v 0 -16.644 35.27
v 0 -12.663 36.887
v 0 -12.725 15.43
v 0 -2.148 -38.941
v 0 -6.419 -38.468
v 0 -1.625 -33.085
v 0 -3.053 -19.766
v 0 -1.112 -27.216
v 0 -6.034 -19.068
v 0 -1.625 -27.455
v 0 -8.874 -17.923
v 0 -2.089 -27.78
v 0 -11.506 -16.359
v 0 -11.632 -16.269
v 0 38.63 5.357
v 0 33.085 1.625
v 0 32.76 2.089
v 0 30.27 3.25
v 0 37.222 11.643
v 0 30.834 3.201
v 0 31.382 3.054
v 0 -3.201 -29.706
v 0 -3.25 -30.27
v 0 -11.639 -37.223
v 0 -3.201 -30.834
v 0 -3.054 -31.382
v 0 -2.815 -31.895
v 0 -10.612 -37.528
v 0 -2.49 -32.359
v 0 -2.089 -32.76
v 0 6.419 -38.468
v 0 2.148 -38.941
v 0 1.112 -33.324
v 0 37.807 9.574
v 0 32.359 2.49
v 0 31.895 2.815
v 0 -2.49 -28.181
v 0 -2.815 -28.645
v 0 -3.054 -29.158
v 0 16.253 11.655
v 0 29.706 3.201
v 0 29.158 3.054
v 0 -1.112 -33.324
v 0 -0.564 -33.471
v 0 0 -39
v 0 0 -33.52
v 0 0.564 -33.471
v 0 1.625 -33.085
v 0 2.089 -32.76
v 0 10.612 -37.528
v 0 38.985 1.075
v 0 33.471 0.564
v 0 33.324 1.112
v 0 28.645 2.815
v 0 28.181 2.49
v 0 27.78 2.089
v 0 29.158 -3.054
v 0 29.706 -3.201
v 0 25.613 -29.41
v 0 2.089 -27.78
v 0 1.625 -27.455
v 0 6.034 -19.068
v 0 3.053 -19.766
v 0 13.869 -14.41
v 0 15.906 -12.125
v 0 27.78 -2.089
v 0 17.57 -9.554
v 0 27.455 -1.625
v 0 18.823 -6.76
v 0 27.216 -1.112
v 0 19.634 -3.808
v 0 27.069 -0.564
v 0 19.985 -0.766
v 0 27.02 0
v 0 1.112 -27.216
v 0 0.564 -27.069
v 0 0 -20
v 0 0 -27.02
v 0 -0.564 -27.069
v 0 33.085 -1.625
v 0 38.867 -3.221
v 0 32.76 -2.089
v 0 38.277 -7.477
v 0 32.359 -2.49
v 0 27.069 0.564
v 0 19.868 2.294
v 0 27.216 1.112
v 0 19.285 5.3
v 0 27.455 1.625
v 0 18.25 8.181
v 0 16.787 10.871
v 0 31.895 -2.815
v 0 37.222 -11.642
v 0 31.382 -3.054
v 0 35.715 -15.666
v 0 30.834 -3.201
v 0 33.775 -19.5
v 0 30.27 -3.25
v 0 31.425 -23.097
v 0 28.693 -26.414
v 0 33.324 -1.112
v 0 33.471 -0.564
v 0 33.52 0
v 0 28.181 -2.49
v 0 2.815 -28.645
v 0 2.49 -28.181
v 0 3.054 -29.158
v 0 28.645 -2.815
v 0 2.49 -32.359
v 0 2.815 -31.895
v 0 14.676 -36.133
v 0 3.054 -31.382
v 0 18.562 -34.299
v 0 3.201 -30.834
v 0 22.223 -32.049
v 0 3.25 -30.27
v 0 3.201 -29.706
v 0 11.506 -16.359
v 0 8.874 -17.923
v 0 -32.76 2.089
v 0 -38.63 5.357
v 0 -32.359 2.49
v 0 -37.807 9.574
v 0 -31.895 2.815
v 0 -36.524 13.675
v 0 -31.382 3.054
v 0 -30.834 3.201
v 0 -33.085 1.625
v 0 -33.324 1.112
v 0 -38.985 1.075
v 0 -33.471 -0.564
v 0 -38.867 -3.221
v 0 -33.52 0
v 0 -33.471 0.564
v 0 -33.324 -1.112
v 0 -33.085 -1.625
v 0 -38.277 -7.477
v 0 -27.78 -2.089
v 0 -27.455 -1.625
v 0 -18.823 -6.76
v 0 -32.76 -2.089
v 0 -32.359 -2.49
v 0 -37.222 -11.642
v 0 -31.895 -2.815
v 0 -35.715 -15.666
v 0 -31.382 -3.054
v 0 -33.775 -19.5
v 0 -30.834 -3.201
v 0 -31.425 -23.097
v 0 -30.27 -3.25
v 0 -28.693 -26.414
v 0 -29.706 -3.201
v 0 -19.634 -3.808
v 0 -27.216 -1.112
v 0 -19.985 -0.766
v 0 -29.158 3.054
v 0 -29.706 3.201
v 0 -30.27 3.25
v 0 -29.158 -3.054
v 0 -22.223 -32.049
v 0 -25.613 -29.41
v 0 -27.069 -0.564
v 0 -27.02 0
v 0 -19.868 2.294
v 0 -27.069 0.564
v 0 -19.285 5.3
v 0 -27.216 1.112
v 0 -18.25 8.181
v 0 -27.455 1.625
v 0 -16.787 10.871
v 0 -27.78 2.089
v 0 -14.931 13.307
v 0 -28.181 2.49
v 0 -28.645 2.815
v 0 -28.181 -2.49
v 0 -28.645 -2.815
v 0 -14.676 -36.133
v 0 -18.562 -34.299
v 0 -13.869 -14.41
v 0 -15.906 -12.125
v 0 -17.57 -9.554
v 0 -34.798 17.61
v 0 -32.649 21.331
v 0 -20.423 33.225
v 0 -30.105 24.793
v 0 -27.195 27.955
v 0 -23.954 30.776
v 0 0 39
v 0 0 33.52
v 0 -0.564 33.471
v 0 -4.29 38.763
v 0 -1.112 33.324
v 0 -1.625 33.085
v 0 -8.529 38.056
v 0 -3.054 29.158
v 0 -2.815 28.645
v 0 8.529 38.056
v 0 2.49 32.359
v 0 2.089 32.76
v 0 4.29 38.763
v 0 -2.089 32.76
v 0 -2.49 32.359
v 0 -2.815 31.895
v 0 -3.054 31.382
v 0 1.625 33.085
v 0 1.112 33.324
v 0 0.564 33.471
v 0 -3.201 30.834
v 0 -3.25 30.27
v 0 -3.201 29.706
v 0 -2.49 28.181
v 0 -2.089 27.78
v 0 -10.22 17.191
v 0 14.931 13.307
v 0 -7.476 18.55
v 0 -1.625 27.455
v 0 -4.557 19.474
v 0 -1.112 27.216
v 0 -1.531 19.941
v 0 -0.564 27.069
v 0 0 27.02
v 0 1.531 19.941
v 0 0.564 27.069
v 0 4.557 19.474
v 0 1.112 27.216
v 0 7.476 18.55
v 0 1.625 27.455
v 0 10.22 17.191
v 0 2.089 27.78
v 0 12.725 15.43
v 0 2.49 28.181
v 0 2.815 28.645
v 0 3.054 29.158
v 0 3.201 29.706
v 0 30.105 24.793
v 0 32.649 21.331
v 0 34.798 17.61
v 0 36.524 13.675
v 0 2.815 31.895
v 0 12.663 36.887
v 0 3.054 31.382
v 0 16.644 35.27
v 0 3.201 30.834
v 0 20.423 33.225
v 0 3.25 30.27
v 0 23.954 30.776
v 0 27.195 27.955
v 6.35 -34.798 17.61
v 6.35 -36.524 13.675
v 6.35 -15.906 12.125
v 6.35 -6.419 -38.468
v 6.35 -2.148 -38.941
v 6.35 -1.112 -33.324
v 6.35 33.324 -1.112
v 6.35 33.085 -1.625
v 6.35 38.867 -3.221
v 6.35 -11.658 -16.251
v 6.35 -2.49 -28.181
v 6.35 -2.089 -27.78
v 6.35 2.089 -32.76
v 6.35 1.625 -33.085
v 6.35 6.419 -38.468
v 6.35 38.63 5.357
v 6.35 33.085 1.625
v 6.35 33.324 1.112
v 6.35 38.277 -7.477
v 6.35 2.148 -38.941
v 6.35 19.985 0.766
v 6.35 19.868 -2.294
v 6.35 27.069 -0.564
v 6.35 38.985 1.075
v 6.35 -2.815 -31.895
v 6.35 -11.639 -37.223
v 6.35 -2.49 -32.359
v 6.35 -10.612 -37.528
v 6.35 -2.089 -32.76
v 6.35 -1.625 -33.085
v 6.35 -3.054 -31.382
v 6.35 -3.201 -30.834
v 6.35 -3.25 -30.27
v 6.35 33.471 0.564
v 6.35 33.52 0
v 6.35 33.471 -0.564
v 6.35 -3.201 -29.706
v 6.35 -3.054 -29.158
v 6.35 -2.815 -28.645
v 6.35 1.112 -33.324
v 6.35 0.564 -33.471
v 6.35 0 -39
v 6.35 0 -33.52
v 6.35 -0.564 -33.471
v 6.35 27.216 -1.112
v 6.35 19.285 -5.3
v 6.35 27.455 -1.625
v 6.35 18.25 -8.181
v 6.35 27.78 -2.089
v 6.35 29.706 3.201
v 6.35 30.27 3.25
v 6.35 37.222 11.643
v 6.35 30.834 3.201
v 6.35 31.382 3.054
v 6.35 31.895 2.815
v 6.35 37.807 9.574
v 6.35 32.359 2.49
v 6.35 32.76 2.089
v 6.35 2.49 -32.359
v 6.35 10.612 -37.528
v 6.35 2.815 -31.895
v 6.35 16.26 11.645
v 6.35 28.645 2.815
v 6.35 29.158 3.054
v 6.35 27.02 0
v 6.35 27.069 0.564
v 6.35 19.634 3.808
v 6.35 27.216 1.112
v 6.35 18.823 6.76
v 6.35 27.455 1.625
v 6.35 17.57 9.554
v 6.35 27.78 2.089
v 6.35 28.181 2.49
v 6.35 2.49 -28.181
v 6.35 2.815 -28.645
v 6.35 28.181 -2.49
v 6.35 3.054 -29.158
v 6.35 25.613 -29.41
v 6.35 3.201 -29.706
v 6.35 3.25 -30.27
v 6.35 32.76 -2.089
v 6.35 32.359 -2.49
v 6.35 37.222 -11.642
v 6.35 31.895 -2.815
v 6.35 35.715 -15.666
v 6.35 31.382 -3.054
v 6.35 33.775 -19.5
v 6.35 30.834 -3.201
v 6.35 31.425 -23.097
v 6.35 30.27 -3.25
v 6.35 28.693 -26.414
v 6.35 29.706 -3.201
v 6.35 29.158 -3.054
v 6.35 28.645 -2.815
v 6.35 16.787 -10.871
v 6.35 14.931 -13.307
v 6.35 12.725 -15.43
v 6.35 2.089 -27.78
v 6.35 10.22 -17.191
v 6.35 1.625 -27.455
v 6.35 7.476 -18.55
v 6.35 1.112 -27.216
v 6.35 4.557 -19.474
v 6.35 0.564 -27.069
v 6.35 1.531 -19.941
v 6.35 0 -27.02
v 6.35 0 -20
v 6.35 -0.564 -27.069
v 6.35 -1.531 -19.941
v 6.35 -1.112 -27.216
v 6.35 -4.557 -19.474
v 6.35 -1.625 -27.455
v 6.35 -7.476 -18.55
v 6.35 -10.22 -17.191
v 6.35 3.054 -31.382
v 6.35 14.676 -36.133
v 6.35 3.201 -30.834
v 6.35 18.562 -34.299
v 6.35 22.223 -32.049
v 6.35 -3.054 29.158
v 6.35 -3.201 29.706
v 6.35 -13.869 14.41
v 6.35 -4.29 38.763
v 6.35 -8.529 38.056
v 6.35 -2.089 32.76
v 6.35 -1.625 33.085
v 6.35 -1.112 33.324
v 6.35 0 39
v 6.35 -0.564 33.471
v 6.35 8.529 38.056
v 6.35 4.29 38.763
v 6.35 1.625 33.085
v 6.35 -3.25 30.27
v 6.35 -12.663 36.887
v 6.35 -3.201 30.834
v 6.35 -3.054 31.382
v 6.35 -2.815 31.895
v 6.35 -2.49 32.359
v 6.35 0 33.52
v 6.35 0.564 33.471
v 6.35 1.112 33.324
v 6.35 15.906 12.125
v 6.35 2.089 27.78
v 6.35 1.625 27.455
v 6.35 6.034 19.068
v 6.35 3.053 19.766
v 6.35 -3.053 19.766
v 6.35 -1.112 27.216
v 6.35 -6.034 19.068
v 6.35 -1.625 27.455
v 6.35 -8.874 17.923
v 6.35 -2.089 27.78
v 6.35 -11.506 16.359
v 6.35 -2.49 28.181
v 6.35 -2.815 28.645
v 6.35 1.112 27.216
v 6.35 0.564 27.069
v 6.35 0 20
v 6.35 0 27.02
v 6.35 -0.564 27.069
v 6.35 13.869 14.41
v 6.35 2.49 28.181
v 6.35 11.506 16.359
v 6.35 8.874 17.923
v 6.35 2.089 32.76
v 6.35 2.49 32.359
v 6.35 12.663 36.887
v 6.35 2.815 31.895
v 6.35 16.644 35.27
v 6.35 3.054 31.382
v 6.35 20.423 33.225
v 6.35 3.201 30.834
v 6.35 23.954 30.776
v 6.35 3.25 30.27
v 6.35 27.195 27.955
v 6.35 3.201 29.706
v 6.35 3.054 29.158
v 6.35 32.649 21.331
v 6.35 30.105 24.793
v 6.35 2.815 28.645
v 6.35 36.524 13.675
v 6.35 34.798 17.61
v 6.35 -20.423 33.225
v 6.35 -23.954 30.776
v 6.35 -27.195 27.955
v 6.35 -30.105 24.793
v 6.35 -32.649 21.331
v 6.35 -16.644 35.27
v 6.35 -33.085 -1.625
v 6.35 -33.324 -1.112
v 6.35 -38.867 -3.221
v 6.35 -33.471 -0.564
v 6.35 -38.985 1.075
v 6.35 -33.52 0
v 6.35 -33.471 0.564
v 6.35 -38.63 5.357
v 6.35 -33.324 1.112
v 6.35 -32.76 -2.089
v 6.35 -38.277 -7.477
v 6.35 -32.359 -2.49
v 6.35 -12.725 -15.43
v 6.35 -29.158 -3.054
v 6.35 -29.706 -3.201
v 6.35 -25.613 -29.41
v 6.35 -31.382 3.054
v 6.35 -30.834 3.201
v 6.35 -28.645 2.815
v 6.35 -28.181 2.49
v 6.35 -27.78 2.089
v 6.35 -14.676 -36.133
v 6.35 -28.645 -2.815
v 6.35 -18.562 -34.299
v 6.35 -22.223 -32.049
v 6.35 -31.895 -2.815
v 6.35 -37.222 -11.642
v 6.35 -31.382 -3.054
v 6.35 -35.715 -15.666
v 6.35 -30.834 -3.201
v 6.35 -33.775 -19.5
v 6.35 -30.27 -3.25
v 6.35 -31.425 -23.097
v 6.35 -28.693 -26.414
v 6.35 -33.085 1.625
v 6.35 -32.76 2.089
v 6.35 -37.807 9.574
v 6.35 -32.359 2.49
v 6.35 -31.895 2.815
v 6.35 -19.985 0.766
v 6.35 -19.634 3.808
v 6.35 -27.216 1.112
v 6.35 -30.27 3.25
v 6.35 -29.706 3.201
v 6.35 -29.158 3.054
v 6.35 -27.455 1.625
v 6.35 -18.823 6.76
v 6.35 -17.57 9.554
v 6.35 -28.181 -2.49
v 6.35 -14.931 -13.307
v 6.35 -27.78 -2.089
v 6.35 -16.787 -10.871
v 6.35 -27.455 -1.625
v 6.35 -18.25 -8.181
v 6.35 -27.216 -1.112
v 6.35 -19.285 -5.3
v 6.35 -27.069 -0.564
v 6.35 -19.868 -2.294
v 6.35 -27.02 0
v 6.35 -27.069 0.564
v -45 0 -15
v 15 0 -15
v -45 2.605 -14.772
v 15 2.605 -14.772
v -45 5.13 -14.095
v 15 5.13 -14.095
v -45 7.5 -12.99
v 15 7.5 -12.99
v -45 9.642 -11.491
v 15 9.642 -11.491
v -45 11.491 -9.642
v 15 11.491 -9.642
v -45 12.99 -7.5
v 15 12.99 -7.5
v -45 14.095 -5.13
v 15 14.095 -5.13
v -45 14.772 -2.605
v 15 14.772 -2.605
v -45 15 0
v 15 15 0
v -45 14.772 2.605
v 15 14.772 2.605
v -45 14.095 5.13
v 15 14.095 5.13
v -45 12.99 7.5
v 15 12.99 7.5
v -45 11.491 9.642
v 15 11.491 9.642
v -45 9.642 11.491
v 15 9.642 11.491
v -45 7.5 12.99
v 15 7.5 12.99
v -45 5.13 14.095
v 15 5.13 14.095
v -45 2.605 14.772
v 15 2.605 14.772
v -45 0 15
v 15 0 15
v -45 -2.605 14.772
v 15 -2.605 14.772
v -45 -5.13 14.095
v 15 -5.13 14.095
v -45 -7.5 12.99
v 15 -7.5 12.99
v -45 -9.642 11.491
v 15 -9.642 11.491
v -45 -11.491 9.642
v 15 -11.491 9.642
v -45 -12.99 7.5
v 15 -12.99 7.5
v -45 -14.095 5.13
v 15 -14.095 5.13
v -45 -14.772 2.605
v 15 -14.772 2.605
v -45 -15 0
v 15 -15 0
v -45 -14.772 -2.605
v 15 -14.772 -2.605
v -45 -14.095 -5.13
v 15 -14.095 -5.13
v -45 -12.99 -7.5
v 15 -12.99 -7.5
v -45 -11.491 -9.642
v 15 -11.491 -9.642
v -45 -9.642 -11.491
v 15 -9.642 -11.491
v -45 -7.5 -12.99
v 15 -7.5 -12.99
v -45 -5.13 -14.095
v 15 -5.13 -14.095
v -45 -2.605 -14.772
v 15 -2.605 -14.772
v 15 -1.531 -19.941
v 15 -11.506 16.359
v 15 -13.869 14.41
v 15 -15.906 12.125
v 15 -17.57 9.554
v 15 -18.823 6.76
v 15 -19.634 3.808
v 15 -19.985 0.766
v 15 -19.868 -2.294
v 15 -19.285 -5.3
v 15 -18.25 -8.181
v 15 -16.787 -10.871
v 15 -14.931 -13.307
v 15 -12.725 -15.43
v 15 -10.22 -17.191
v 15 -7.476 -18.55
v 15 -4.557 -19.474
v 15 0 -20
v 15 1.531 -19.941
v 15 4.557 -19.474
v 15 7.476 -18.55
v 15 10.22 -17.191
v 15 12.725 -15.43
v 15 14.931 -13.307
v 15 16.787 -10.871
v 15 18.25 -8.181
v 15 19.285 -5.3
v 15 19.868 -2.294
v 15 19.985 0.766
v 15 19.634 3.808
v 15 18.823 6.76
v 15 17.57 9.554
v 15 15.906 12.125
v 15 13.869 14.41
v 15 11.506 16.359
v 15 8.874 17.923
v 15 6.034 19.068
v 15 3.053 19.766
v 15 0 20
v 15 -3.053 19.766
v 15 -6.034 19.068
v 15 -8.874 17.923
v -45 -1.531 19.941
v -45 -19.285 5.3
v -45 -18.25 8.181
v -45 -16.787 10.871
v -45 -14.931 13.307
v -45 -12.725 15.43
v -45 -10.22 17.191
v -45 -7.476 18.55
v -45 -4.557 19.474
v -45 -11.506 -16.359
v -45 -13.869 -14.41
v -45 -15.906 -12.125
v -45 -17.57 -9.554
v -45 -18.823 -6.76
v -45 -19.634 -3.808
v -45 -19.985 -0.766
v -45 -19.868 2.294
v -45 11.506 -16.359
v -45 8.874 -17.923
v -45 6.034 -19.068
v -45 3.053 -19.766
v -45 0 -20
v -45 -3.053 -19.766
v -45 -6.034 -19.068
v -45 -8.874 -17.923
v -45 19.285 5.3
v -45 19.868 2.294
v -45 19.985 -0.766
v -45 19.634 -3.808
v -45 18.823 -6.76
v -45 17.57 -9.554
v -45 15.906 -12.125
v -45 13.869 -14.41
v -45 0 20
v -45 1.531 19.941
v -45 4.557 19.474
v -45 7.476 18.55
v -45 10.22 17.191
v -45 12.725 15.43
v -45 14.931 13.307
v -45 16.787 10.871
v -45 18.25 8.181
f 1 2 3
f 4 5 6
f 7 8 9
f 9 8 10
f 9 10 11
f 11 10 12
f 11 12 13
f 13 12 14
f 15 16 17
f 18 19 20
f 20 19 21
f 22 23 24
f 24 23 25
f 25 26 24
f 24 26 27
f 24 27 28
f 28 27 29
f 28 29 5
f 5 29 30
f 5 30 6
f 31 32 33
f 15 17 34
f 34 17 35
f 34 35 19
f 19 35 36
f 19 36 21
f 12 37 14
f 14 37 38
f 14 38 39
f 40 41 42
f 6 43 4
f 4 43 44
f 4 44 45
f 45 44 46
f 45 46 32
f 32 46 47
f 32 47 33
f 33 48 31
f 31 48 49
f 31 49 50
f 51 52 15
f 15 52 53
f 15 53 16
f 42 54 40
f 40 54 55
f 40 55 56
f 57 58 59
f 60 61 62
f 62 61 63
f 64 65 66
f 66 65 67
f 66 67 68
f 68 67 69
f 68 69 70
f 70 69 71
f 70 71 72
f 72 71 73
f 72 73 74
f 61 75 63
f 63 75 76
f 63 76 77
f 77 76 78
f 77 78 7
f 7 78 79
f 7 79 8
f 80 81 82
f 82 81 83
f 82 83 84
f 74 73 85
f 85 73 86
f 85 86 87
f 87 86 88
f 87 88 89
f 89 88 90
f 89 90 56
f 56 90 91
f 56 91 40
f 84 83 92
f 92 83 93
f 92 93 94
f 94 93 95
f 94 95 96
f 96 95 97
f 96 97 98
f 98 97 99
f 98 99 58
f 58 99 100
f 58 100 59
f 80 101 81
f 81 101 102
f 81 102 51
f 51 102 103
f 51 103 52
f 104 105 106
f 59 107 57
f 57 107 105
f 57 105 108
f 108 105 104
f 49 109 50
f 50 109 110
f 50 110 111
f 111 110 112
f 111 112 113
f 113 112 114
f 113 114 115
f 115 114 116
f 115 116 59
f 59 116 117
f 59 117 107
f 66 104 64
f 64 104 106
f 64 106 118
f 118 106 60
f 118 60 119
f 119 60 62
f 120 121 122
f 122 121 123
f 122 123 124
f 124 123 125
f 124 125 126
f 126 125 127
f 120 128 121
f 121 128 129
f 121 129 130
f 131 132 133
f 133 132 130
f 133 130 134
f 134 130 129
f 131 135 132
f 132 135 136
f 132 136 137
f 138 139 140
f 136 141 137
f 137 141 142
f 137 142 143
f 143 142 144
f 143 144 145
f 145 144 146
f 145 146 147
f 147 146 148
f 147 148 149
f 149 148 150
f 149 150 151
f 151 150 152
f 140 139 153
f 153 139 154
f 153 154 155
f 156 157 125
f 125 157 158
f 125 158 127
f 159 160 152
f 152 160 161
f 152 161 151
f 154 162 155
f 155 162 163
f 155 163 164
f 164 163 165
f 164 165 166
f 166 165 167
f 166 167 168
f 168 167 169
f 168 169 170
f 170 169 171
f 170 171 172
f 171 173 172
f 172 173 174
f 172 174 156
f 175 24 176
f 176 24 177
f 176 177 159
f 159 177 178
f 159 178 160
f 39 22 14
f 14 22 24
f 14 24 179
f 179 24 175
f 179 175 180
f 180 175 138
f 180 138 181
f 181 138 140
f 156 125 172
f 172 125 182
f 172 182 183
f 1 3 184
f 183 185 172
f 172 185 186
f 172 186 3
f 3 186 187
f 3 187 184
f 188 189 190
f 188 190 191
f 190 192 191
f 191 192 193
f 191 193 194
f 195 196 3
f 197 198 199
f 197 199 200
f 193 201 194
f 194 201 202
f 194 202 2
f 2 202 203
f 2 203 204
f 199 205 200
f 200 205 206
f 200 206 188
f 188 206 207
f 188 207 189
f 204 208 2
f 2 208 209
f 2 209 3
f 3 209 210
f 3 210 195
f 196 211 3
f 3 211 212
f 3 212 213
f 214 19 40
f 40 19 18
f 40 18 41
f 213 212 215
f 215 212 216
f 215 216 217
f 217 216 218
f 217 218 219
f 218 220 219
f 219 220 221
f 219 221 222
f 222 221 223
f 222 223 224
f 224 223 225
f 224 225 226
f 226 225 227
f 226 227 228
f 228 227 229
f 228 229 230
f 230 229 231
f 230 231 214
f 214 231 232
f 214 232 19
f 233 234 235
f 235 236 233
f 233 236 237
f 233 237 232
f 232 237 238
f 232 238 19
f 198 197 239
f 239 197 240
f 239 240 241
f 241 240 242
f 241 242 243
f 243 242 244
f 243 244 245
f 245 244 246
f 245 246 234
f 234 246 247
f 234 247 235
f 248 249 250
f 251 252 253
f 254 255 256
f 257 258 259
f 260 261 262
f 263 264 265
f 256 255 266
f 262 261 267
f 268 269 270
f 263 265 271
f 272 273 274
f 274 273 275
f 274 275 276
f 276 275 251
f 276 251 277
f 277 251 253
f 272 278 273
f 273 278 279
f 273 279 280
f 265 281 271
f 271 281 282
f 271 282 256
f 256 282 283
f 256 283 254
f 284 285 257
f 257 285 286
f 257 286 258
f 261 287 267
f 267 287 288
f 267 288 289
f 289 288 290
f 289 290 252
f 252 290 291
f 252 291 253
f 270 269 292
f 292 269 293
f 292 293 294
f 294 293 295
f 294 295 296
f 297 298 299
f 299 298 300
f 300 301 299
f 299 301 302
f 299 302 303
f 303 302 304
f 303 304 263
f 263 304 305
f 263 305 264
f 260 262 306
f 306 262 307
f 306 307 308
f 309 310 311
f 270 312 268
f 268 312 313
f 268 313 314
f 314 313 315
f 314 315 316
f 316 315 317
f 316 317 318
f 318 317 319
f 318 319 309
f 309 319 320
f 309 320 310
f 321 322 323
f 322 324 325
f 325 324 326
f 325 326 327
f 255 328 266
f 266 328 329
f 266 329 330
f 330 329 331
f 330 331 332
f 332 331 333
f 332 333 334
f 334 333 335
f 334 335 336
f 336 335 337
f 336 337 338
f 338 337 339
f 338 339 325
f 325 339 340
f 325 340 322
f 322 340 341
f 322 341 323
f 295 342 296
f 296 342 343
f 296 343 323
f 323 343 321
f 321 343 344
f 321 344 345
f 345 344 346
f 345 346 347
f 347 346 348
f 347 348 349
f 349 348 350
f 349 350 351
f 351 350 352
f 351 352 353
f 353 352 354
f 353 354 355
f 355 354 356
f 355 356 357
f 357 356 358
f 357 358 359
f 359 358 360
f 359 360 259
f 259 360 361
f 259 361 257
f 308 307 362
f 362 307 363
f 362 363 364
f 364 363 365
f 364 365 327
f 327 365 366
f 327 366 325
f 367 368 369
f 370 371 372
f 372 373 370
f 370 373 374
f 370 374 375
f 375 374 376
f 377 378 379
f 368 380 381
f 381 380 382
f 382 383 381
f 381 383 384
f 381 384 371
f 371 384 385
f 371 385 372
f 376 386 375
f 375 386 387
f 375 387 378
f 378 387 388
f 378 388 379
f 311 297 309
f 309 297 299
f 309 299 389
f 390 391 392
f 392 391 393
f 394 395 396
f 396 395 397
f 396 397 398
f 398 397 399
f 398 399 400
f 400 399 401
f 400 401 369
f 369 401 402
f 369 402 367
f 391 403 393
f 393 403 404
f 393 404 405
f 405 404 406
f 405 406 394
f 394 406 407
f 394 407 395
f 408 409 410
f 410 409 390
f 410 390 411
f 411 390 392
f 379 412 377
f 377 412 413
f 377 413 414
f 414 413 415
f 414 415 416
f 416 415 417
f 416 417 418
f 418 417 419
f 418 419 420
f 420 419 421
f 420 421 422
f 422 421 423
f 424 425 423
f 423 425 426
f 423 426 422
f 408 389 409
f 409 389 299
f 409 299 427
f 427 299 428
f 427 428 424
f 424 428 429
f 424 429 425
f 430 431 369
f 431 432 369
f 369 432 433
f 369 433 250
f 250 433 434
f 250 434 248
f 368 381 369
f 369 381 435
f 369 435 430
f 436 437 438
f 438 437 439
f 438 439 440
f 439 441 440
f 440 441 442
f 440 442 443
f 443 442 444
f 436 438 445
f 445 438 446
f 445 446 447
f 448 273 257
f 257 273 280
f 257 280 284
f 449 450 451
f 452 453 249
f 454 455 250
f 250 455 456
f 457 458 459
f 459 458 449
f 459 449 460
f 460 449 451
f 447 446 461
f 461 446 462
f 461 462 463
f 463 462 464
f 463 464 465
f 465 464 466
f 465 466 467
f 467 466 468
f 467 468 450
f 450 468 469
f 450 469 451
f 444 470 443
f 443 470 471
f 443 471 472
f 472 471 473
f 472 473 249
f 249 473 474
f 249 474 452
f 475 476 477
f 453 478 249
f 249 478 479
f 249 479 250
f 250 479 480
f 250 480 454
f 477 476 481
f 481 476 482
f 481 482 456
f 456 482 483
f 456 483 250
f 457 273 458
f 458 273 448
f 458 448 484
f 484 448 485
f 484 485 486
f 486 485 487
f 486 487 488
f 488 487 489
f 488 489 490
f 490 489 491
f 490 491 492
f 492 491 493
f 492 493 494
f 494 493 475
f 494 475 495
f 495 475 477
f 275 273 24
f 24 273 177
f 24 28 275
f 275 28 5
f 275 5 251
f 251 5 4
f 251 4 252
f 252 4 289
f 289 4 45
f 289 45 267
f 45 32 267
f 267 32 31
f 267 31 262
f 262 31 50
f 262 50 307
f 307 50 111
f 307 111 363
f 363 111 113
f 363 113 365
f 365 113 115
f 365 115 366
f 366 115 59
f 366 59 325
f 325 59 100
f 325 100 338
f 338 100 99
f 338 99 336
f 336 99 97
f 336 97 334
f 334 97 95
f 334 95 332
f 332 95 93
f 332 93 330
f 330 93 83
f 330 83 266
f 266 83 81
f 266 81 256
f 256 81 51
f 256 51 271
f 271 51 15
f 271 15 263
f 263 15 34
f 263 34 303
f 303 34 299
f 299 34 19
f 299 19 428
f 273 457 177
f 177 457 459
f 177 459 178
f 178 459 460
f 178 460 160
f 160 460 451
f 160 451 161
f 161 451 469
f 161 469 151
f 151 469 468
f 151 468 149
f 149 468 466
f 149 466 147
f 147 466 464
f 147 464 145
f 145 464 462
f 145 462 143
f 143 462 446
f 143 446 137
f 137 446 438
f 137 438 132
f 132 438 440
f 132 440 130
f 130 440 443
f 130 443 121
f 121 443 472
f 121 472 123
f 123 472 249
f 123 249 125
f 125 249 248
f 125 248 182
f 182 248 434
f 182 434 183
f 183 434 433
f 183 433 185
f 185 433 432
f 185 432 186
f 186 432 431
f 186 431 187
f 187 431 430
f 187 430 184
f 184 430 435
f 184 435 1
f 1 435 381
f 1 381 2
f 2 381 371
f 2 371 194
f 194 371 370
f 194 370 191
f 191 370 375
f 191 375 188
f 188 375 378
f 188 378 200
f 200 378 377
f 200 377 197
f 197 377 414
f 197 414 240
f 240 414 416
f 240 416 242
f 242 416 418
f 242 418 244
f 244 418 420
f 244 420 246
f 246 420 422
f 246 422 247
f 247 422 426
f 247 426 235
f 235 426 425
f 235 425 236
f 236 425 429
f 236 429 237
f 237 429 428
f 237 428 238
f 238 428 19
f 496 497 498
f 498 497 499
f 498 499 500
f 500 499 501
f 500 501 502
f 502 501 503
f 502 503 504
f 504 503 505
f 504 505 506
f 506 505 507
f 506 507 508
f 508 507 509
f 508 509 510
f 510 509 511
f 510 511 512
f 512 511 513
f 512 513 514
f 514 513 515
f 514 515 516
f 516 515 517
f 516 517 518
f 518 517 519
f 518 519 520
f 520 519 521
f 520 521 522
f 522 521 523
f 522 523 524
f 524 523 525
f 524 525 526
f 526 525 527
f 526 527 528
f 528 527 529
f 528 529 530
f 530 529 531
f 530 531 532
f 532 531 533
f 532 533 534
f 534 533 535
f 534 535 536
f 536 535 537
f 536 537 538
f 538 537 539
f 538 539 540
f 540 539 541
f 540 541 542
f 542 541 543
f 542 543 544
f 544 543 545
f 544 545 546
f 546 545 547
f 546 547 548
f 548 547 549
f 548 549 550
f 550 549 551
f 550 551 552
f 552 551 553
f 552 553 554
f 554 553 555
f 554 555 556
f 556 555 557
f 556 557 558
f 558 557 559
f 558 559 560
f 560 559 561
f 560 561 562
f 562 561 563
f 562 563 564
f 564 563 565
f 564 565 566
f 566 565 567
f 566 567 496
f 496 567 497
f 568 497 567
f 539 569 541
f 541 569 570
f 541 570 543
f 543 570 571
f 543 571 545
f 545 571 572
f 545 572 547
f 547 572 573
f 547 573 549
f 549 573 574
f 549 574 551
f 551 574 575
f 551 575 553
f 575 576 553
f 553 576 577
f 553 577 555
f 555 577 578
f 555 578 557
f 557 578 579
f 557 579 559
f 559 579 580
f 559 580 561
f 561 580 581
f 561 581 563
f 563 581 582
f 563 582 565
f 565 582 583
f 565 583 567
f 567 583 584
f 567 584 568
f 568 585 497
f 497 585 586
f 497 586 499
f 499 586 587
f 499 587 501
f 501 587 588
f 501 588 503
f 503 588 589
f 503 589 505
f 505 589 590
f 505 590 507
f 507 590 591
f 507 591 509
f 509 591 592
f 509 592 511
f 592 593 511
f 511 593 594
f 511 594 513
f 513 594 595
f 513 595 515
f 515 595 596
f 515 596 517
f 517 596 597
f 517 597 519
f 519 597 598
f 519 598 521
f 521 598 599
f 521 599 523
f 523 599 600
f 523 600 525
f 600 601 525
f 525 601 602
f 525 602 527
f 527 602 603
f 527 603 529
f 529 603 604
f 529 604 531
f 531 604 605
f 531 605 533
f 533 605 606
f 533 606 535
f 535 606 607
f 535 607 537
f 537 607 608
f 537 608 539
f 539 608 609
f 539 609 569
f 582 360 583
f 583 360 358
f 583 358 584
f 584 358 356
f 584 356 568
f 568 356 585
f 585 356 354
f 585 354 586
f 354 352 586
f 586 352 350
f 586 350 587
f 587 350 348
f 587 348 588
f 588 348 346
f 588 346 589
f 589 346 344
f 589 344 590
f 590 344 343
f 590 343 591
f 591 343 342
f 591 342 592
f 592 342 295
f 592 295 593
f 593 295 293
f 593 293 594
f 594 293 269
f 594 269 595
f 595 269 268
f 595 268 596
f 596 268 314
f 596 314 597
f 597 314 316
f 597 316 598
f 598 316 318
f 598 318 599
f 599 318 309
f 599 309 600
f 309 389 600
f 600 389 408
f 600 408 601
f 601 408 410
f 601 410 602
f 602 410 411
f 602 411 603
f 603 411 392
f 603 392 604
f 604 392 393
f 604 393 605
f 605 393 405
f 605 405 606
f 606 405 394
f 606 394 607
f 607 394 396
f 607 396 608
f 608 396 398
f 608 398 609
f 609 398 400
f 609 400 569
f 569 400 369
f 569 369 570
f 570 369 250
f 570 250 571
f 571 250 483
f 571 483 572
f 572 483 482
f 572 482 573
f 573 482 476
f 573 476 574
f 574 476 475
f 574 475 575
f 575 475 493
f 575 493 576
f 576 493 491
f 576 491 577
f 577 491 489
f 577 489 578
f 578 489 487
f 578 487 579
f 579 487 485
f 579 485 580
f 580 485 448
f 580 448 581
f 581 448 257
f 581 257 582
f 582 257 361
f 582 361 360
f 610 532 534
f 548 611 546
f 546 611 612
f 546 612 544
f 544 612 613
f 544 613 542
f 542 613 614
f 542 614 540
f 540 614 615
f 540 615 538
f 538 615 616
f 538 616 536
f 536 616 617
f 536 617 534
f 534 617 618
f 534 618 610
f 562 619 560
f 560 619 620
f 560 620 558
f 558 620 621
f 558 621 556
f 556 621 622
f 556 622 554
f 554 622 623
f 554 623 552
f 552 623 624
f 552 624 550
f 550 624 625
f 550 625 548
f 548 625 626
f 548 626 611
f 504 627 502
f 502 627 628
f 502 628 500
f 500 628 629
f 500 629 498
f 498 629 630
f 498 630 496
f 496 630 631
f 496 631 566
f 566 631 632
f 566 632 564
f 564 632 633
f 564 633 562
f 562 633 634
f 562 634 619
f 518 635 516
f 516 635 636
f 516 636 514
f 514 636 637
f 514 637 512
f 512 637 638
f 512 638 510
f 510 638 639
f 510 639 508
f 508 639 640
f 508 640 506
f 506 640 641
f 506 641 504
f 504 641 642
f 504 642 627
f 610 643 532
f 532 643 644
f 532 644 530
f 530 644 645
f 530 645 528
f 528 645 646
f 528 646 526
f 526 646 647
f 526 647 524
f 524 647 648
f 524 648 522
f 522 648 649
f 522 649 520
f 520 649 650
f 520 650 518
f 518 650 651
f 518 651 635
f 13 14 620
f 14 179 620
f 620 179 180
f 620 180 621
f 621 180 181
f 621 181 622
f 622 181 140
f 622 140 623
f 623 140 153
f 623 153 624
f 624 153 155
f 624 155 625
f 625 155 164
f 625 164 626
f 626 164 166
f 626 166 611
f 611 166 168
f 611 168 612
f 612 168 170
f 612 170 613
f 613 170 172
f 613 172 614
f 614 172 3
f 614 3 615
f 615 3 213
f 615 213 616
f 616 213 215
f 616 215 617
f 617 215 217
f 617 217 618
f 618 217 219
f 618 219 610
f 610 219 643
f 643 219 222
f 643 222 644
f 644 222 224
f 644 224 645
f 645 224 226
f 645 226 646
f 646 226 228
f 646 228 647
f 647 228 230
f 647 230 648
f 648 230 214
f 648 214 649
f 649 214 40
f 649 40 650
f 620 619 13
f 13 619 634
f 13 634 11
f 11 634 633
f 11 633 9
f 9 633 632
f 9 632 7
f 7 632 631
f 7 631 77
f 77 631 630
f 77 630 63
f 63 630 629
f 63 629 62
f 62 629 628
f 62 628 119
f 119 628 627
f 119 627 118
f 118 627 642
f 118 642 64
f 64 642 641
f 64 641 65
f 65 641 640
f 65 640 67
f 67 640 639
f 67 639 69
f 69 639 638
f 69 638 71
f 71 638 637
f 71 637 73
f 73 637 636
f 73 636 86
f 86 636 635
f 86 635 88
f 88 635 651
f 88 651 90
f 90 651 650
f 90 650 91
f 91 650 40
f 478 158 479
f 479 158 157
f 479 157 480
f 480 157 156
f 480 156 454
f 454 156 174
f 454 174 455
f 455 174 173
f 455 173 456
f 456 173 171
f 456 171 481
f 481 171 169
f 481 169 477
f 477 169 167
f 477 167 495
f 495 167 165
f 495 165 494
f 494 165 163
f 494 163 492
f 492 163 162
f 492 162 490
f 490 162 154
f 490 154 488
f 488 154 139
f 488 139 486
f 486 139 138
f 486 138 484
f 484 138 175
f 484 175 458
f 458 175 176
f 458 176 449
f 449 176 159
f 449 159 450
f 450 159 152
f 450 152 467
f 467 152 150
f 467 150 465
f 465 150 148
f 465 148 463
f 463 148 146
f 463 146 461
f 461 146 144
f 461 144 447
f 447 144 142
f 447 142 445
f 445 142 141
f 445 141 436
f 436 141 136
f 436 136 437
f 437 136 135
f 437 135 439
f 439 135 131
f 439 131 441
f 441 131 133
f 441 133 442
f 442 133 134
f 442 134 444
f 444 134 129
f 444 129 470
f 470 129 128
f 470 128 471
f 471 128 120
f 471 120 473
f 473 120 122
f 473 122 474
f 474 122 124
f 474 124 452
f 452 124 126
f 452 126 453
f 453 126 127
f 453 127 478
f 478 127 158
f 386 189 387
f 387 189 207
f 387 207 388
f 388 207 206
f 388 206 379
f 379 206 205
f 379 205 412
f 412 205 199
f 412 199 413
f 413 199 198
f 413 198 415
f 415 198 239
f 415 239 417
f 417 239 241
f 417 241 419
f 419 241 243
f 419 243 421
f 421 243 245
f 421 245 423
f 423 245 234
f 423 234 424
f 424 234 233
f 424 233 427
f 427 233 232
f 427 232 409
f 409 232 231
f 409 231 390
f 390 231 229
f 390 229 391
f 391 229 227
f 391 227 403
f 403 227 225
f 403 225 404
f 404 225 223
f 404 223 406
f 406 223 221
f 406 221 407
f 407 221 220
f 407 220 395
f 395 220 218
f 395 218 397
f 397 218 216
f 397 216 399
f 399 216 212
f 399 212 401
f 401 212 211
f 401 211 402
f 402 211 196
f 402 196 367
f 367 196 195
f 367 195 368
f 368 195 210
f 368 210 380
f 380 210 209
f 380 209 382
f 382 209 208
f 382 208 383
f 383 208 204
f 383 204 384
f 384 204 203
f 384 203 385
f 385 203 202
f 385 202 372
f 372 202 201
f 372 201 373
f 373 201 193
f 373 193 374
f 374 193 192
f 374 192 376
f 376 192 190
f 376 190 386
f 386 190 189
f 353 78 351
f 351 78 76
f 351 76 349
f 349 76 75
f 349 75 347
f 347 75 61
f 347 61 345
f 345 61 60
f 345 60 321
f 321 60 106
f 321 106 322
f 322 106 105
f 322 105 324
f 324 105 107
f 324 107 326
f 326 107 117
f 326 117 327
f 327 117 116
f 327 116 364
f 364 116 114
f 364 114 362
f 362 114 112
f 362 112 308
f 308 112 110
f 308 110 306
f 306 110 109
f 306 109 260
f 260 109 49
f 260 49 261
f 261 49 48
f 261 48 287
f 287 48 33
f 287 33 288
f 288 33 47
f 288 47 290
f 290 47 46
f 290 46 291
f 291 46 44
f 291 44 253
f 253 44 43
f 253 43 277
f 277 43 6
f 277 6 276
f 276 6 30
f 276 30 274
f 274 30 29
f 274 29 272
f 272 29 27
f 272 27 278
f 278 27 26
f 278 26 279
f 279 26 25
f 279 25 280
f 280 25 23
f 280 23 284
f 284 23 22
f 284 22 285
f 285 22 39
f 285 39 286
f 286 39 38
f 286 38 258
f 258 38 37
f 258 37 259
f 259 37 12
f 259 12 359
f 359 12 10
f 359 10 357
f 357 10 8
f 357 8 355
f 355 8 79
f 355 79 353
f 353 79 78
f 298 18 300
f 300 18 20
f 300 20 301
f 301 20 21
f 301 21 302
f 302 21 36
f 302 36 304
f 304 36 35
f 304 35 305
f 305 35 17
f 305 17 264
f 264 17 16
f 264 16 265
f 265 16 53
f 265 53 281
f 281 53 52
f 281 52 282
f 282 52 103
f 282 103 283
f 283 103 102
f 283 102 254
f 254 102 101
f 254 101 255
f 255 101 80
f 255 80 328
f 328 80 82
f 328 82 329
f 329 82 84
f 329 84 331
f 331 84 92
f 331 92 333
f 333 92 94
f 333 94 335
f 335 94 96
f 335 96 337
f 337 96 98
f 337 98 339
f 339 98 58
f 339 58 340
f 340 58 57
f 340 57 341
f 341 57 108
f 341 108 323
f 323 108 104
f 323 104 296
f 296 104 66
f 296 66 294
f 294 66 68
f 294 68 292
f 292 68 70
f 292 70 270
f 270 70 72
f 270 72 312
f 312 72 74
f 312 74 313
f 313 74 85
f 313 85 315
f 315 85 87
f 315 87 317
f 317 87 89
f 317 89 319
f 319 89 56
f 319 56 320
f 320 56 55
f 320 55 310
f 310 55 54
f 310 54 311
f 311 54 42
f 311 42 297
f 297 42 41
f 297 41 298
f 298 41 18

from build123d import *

# Parameters (mm, degrees)
SKETCH1_R           = 39
BOSS_EXTRUDE1_DEPTH = 6.35
SKETCH2_R           = 15
CUT_EXTRUDE1_DEPTH  = 6.35
SKETCH3_R           = 20
SKETCH3_R_2         = 15
BOSS_EXTRUDE2_DEPTH = 8.65
SKETCH4_R           = 20
SKETCH4_R_2         = 15
BOSS_EXTRUDE3_DEPTH = 45
SKETCH5_R           = 3.25
CUT_EXTRUDE2_DEPTH  = 45


with BuildPart() as part:
    # Sketch1 → Boss-Extrude1 (new body)
    with BuildSketch(Plane(origin=(0, 0, 0), x_dir=(0, 0, -1), z_dir=(1, 0, 0))):
        Circle(SKETCH1_R)
    extrude(amount=BOSS_EXTRUDE1_DEPTH)

    # Sketch2 → Cut-Extrude1 (cut)
    with BuildSketch(Plane(origin=(6.35, 0, 0), x_dir=(0, 0, -1), z_dir=(1, 0, 0))):
        Circle(SKETCH2_R)
    extrude(amount=-CUT_EXTRUDE1_DEPTH, mode=Mode.SUBTRACT)

    # Sketch3 → Boss-Extrude2 (add)
    with BuildSketch(Plane(origin=(6.35, 0, 0), x_dir=(0, 0, -1), z_dir=(1, 0, 0))):
        Circle(SKETCH3_R)
        Circle(SKETCH3_R_2, mode=Mode.SUBTRACT)
    extrude(amount=BOSS_EXTRUDE2_DEPTH)

    # Sketch4 → Boss-Extrude3 (add)
    with BuildSketch(Plane.ZY):
        Circle(SKETCH4_R)
        Circle(SKETCH4_R_2, mode=Mode.SUBTRACT)
    extrude(amount=BOSS_EXTRUDE3_DEPTH)

    # Sketch5 → Cut-Extrude2 (cut)
    with BuildSketch(Plane.ZY):
        with Locations((0, 30.27)):
            Circle(SKETCH5_R)
        with Locations((-30.27, 0)):
            Circle(SKETCH5_R)
        with Locations((30.27, 0)):
            Circle(SKETCH5_R)
        with Locations((0, -30.27)):
            Circle(SKETCH5_R)
    extrude(amount=-CUT_EXTRUDE2_DEPTH, mode=Mode.SUBTRACT)


solid = part.part
